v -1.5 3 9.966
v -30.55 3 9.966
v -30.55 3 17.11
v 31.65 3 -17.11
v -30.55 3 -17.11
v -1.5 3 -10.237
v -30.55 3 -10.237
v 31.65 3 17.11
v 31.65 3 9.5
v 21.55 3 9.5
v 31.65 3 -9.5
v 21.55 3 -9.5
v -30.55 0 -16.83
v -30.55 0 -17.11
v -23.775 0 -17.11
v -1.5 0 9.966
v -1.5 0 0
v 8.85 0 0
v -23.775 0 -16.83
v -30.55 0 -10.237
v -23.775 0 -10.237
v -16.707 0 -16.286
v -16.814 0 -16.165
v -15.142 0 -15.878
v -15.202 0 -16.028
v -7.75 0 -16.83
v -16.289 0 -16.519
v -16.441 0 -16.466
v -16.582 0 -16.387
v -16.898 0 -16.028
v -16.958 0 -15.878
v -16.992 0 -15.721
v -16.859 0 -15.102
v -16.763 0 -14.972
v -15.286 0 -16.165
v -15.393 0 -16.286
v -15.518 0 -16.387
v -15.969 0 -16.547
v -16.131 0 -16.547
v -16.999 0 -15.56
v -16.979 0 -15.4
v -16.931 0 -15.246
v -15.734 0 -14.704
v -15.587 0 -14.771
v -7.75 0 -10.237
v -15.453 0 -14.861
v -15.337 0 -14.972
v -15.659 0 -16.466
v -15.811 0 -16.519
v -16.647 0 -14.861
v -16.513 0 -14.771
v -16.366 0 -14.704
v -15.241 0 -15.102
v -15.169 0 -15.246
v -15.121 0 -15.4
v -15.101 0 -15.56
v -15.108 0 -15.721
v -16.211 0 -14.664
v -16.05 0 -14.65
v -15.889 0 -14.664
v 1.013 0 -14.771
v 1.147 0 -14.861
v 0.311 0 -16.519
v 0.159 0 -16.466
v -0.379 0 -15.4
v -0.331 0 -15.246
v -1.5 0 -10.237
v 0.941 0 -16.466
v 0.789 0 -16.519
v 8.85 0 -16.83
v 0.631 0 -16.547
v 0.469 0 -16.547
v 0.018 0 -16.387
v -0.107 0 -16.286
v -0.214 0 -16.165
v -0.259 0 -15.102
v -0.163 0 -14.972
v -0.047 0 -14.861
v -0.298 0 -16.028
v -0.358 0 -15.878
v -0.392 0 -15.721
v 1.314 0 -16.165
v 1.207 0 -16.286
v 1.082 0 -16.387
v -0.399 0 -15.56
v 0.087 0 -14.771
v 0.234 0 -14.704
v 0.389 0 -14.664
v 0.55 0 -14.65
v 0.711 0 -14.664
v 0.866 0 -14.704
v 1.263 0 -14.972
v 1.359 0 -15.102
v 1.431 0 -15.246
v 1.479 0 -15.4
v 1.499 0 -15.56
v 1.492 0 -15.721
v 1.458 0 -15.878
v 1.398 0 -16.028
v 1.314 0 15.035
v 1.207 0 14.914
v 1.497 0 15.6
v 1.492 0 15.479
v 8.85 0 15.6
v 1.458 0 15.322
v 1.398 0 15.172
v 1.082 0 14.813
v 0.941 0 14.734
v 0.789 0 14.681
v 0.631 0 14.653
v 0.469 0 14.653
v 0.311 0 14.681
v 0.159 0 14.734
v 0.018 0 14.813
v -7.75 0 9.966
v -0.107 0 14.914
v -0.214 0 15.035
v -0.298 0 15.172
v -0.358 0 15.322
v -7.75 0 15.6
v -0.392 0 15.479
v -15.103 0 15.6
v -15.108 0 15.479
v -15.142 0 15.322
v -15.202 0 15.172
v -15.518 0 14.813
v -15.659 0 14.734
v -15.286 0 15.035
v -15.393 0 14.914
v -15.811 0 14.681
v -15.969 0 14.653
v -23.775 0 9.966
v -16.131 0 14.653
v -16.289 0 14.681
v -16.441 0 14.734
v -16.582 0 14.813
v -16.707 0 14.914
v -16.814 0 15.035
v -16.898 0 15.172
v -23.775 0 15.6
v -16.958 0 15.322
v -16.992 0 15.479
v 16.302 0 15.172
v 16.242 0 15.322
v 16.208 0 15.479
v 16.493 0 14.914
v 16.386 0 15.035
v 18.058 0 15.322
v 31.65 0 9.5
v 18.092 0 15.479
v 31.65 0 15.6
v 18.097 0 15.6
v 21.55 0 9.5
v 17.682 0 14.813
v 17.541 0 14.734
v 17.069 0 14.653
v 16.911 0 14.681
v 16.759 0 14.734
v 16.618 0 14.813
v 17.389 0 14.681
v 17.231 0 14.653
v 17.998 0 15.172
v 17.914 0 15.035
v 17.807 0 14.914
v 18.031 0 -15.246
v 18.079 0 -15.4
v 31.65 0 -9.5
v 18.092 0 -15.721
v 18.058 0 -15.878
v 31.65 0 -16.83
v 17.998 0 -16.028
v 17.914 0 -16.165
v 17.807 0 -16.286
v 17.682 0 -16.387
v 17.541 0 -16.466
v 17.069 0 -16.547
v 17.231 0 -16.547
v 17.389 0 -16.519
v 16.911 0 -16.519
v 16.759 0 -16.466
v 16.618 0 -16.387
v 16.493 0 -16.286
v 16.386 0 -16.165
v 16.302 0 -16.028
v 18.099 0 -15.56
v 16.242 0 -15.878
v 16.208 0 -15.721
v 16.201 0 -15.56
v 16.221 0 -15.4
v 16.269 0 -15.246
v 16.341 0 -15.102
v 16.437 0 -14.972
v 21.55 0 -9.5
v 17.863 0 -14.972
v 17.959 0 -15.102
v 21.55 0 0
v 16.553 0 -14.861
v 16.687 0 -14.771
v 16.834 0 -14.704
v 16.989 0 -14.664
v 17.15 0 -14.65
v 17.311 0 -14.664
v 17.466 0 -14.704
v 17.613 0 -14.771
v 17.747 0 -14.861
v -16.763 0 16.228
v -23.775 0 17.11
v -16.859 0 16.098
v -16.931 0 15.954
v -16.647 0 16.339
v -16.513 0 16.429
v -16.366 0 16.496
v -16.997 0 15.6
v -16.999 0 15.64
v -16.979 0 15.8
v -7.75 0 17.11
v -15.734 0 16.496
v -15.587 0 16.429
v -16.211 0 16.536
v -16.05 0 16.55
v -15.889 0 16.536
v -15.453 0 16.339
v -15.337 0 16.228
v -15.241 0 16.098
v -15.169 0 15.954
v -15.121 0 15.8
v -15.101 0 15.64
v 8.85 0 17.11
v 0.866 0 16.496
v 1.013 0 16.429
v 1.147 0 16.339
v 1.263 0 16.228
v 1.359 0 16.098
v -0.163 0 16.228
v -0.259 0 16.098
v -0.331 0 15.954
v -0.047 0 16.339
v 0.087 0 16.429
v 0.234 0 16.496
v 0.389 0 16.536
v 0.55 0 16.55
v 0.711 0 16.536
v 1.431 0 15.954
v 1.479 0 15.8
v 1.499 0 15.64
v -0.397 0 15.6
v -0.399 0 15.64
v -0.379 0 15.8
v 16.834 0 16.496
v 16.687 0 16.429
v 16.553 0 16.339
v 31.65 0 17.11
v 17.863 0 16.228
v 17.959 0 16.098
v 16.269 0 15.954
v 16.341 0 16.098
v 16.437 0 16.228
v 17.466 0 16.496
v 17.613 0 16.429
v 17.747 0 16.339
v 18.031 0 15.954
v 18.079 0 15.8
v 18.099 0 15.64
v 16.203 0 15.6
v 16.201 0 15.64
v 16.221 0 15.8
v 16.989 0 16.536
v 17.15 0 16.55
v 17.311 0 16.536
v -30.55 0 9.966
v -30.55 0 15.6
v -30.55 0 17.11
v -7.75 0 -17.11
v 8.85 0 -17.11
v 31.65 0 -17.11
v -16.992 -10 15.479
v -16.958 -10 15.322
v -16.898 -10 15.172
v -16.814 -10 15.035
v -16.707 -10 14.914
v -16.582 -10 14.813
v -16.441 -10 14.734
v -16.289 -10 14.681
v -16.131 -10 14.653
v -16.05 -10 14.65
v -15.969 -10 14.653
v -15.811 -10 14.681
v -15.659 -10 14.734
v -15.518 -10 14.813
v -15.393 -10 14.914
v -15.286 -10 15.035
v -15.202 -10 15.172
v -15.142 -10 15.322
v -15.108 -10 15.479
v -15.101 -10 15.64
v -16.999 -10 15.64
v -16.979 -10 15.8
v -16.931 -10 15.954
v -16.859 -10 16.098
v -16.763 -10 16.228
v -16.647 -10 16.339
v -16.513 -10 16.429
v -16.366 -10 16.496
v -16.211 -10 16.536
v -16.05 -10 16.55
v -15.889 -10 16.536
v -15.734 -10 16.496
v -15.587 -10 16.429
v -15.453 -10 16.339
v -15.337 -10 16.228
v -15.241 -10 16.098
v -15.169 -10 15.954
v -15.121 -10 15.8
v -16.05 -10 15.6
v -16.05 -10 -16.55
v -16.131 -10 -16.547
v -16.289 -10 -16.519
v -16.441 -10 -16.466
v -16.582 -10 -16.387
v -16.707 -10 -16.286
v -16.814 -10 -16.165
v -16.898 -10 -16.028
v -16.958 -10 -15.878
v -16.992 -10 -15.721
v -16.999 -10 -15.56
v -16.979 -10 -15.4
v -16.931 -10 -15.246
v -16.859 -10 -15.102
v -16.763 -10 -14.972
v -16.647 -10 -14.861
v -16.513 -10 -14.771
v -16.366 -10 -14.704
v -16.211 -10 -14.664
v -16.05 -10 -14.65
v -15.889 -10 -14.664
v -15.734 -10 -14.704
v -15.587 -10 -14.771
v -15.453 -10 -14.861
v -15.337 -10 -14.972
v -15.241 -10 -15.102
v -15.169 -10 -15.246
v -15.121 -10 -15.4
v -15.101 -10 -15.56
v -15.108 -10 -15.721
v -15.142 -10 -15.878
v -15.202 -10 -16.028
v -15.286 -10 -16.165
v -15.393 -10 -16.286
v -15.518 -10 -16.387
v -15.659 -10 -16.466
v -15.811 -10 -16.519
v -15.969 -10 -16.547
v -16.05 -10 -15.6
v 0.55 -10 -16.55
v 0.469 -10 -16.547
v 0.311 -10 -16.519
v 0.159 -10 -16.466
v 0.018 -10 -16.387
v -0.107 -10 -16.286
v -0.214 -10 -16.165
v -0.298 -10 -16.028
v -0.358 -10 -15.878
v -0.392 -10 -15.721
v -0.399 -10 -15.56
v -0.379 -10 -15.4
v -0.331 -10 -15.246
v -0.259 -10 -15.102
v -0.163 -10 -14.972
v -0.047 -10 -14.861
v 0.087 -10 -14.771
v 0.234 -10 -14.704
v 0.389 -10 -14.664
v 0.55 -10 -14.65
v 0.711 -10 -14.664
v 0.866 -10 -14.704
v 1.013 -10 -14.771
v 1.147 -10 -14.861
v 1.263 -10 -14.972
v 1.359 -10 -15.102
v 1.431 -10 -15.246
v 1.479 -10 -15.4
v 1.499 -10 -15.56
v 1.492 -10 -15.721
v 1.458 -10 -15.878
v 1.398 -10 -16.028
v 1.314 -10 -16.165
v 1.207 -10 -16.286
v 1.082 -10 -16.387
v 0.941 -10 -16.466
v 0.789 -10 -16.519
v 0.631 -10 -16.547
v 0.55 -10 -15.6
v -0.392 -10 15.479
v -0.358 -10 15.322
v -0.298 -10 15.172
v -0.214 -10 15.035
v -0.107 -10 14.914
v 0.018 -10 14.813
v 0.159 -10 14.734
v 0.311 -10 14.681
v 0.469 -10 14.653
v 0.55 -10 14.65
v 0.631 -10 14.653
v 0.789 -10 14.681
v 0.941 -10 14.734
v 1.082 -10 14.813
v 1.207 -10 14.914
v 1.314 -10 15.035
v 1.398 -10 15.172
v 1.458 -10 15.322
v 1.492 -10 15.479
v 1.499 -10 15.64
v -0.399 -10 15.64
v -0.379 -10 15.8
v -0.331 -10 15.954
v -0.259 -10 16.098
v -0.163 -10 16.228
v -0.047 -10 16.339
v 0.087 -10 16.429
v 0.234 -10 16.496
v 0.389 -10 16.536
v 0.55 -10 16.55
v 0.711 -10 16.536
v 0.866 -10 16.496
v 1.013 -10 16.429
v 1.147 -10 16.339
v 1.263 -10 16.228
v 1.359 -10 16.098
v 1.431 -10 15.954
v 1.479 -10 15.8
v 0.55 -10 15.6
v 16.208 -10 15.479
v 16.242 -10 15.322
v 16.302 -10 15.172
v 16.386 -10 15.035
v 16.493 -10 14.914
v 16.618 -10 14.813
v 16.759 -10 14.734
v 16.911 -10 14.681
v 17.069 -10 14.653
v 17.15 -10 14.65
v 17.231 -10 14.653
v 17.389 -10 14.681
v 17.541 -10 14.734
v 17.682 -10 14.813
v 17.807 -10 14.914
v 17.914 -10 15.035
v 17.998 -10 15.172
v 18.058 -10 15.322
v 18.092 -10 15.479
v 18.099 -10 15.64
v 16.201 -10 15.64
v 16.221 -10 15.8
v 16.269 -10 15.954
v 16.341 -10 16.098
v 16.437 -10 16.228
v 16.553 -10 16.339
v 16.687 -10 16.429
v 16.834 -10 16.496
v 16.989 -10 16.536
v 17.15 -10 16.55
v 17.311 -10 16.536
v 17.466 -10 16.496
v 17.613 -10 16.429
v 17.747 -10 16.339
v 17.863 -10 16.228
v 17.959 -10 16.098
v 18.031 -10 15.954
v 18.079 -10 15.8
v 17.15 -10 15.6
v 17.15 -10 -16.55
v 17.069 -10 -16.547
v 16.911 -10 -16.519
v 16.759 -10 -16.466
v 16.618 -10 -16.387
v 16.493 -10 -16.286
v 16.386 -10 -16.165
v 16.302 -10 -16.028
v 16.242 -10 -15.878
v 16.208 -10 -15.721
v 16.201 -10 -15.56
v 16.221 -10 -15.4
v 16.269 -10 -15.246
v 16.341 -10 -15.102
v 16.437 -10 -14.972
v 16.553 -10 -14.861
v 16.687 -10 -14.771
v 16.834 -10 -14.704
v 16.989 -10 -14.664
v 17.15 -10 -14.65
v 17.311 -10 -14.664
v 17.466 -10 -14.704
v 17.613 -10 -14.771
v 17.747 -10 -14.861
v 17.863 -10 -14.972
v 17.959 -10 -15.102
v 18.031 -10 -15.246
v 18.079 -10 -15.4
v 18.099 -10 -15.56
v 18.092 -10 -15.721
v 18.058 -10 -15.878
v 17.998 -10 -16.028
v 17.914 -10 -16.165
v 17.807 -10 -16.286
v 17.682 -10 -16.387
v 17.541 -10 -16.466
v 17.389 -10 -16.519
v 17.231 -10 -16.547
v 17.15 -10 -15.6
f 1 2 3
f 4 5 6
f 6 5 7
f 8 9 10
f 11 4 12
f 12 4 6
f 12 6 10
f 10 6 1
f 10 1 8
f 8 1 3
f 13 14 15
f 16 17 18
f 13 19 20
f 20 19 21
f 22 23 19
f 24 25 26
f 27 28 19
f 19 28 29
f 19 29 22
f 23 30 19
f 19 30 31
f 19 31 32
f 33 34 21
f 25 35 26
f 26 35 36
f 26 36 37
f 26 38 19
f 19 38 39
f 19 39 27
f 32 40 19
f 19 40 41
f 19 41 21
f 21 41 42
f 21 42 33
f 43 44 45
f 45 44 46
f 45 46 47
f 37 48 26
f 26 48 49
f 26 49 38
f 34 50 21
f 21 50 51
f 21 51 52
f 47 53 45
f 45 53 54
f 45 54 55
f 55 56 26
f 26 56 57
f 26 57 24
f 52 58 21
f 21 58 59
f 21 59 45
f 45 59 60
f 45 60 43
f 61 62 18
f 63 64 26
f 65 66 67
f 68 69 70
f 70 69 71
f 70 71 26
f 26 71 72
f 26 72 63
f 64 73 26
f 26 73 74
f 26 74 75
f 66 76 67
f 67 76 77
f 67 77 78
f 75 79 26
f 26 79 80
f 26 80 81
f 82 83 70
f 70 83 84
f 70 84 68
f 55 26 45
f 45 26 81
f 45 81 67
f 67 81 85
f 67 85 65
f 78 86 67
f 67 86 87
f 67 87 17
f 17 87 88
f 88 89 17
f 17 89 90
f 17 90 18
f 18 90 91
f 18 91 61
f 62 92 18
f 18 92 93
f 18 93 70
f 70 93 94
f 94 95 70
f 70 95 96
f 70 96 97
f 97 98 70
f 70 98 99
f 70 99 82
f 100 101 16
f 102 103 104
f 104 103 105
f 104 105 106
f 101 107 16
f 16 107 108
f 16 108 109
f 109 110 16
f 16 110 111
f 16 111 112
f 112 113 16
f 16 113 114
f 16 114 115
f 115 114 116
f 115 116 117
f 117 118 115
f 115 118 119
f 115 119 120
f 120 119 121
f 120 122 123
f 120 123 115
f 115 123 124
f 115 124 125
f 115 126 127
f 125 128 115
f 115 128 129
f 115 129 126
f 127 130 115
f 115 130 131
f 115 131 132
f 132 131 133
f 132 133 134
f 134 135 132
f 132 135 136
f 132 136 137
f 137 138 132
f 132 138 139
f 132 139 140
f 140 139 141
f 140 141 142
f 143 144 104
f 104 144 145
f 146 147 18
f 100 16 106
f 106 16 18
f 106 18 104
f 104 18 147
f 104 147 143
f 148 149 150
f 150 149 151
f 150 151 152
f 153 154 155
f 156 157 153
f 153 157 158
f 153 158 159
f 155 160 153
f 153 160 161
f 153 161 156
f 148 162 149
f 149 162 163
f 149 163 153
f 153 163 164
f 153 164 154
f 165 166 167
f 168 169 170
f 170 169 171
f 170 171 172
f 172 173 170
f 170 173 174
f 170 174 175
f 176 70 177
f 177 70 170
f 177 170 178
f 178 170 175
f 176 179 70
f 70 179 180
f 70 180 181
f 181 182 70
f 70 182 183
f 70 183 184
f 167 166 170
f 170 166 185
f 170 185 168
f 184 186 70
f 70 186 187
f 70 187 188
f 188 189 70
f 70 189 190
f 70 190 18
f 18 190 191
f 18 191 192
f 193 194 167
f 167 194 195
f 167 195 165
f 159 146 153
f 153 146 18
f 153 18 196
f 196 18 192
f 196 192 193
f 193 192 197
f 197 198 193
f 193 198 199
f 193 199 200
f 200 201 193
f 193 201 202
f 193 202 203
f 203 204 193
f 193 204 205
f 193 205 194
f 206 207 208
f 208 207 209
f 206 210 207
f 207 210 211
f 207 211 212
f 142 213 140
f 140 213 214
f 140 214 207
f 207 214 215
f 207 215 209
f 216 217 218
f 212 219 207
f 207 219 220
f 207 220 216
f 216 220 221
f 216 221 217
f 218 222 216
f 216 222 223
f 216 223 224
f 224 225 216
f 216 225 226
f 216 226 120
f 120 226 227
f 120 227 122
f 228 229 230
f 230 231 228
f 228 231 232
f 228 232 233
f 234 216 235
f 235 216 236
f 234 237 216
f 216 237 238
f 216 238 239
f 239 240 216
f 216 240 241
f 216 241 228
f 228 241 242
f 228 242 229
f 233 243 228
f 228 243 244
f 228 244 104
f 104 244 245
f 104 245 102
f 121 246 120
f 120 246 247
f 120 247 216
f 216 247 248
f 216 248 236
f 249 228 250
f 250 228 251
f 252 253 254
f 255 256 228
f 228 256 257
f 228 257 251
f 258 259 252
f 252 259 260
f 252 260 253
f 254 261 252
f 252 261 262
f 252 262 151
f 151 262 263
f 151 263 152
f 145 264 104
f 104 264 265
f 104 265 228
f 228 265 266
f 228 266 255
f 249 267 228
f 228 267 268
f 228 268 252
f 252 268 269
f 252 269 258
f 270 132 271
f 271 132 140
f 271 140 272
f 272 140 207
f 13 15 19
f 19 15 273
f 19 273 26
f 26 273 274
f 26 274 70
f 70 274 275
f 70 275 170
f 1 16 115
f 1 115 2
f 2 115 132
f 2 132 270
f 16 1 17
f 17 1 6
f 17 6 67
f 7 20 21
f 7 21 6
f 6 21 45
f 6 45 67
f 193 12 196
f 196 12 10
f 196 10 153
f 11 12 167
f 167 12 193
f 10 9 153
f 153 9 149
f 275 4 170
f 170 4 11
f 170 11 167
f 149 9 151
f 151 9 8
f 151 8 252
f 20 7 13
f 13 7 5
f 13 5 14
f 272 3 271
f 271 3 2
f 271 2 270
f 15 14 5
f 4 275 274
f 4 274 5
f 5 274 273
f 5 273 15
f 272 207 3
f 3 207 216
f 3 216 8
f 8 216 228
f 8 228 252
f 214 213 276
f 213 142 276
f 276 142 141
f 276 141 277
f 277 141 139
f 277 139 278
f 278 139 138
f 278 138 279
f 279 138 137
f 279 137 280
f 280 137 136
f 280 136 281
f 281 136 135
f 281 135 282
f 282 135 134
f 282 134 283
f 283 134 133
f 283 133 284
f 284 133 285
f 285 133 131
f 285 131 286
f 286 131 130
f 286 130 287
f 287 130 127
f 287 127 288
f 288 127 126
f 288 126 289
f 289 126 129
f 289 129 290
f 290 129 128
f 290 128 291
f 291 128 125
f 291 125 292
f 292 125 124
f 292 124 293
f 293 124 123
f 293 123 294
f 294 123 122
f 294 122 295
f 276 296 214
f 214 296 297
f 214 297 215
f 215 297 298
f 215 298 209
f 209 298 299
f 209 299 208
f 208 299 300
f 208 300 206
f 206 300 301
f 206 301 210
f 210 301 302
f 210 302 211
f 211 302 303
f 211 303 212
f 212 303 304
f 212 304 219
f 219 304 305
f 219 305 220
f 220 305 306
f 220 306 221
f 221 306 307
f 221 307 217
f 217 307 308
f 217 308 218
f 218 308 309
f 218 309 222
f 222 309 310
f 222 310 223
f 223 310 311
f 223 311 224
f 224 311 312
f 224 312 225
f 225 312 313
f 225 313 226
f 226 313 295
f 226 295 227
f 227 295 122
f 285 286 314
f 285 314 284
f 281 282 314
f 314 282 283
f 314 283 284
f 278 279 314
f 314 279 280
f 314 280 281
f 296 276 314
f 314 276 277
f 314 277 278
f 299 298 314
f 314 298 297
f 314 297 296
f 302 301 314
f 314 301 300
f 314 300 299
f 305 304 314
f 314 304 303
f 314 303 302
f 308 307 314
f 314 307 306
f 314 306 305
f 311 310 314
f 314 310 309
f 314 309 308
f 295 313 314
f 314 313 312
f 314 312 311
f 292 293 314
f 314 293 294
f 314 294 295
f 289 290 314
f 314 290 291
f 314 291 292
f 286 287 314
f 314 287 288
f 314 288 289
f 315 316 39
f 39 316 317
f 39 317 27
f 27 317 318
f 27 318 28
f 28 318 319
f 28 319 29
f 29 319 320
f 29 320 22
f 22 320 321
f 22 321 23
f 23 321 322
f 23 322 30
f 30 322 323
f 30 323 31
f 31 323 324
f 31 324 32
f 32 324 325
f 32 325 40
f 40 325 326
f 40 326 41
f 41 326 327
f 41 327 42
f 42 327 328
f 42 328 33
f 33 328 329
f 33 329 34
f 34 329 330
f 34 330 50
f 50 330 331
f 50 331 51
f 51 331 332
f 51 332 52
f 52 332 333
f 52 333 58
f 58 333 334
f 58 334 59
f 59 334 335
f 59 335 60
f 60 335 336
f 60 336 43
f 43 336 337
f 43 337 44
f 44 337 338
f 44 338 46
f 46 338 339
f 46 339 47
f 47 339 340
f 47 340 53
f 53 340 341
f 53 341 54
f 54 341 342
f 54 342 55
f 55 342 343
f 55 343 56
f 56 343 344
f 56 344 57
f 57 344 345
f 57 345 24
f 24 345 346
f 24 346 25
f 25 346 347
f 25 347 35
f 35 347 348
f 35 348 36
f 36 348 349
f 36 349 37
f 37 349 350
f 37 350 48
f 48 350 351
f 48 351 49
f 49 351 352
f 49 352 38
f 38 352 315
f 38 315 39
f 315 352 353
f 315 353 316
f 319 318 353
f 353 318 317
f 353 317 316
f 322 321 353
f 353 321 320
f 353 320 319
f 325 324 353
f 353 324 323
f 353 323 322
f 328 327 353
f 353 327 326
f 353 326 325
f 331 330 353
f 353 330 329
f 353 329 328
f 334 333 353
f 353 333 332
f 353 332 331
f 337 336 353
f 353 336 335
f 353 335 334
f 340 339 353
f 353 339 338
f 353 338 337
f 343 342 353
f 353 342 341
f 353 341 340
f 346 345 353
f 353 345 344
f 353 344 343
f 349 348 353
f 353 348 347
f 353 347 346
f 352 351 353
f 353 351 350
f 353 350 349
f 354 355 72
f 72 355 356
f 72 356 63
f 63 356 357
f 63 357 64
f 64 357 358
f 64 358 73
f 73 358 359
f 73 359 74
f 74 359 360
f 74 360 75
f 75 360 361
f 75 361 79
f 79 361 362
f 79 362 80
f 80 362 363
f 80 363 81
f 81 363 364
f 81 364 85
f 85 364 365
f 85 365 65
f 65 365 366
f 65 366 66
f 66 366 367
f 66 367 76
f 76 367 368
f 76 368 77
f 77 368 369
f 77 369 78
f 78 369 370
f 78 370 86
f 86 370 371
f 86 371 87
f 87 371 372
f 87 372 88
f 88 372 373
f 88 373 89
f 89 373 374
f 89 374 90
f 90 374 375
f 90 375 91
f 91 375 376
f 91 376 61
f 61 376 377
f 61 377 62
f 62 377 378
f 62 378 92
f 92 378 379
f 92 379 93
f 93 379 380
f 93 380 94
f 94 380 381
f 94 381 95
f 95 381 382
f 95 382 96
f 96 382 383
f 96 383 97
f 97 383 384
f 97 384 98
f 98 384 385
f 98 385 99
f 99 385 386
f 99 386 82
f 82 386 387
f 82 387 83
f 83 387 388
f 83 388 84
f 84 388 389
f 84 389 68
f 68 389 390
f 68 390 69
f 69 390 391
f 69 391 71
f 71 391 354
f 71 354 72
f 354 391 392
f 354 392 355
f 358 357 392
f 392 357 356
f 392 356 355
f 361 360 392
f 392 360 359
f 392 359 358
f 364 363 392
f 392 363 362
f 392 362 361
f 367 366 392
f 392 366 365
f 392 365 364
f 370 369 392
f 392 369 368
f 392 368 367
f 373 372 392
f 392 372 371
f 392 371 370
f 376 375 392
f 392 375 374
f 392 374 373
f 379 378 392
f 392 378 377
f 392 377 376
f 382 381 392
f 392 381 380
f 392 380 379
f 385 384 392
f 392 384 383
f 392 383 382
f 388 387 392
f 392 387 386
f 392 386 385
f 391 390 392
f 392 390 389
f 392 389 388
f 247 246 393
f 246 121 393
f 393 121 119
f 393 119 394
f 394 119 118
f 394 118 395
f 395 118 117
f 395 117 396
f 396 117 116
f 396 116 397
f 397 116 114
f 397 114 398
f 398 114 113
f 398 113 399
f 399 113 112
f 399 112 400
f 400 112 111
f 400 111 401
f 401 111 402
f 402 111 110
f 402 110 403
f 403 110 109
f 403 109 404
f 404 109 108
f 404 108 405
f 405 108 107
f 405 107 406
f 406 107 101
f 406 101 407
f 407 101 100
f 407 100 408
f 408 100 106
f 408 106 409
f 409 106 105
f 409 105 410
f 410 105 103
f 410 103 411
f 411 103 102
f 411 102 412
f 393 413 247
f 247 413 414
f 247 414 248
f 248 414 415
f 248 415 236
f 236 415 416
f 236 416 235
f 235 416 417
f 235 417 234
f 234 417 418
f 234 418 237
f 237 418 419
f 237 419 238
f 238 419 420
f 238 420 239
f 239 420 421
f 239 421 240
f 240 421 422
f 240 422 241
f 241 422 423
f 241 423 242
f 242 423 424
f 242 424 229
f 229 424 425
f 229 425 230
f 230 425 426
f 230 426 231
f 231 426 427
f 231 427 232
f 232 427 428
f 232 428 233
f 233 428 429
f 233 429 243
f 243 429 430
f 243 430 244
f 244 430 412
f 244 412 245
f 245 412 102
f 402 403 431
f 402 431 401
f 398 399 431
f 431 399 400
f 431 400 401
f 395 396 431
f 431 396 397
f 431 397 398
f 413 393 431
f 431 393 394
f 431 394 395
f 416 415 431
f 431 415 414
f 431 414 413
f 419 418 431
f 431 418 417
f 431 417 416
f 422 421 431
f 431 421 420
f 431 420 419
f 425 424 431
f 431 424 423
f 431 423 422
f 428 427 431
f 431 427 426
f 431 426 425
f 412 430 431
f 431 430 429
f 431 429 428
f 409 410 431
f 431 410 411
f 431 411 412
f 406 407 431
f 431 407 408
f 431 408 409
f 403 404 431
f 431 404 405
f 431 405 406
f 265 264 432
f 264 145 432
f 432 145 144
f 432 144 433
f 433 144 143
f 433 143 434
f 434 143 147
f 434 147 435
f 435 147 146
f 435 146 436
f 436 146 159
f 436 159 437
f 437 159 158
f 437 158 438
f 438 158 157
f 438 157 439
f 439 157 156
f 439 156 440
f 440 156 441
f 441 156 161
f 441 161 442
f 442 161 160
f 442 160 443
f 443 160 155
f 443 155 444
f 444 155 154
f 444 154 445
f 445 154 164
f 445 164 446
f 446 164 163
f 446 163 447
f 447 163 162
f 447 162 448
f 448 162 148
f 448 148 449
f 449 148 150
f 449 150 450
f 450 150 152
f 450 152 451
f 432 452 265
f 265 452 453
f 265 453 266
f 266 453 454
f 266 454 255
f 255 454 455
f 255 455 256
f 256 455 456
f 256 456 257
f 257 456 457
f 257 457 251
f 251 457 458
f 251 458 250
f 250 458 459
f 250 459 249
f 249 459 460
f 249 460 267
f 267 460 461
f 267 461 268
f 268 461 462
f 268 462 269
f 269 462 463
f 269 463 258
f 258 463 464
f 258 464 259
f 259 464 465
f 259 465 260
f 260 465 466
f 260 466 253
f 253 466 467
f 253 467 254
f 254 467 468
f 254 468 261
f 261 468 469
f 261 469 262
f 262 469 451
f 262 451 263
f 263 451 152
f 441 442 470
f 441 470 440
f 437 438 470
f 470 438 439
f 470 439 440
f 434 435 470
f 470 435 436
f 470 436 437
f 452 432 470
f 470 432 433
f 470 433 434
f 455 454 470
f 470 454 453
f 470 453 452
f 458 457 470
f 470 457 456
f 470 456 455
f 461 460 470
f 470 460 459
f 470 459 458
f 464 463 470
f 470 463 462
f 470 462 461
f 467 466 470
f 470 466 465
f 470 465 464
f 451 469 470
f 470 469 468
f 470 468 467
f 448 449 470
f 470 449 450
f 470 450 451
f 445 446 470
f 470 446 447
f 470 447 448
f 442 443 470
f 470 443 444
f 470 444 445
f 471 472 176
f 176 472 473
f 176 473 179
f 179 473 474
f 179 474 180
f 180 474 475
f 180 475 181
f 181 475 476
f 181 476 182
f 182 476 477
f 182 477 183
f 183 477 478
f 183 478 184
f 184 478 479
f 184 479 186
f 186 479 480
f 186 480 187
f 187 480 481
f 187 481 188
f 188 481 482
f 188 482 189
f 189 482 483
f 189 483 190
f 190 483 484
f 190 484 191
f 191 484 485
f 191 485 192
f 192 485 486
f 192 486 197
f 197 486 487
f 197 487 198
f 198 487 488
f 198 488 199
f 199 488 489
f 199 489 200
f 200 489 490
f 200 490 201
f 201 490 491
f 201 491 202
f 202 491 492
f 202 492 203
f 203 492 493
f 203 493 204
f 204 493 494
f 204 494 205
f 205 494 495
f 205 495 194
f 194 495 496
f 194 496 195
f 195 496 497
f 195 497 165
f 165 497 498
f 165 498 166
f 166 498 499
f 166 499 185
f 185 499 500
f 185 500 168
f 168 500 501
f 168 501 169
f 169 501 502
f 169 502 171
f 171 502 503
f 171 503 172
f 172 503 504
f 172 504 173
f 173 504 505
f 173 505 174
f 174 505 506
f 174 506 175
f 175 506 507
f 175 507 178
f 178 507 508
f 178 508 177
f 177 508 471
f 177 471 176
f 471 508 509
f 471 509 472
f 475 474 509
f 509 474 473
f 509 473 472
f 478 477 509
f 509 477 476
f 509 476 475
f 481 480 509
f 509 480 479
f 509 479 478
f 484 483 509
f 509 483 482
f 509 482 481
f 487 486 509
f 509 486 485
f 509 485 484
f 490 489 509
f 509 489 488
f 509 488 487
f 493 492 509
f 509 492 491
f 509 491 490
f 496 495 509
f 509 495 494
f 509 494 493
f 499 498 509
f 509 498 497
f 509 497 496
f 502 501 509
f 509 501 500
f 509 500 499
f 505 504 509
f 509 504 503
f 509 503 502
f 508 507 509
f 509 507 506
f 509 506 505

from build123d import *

# Parameters (mm, degrees)
SKETCH1_W           = 55.1
SKETCH1_H           = 27.8
BOSS_EXTRUDE1_DEPTH = 3
SKETCH3_W           = 21.65
SKETCH3_H           = 20.203759547
SKETCH3_W_2         = 17.65
SKETCH3_H_2         = 15.75
CUT_EXTRUDE1_DEPTH  = 32.00342723
SKETCH4_W           = 19.154601746
SKETCH4_H           = 20.203759547
CUT_EXTRUDE2_DEPTH  = 32.00342723
CUT_EXTRUDE3_DEPTH  = 10
SKETCH7_W           = 4.4
SKETCH7_H           = 3
BOSS_EXTRUDE2_DEPTH = 4.1
SKETCH8_W           = 3.662724417
SKETCH8_H           = 3
SKETCH8_W_2         = 3.933516036
BOSS_EXTRUDE3_DEPTH = 3
SKETCH9_W           = 62.2
SKETCH9_H           = 3
BOSS_EXTRUDE4_DEPTH = 3.21
SKETCH10_W          = 62.2
SKETCH10_H          = 3
BOSS_EXTRUDE5_DEPTH = 3.21
SKETCH11_R          = 0.95
BOSS_EXTRUDE6_DEPTH = 10


with BuildPart() as part:
    # Sketch1 → Boss-Extrude1 (new body)
    with BuildSketch(Plane(origin=(0, 0, 0), x_dir=(1, 0, 0), z_dir=(0, 1, 0))):
        Rectangle(SKETCH1_W, SKETCH1_H)
    extrude(amount=BOSS_EXTRUDE1_DEPTH)

    # Sketch3 → Cut-Extrude1 (cut, through all)
    # profile 1 of 2: a face of its own
    with BuildSketch(Plane.XZ):
        with Locations((-12.325, -0.13539581)):
            Rectangle(SKETCH3_W, SKETCH3_H)
        with Locations((-12.325, -0.375)):
            Rectangle(SKETCH3_W_2, SKETCH3_H_2, mode=Mode.SUBTRACT)
    # profile 2 of 2: a face of its own
    with BuildSketch(Plane.XZ):
        with Locations((-12.325, -0.375)):
            Rectangle(SKETCH3_W_2, SKETCH3_H_2)
    extrude(amount=-CUT_EXTRUDE1_DEPTH, mode=Mode.SUBTRACT)

    # Sketch4 → Cut-Extrude2 (cut, through all)
    with BuildSketch(Plane(origin=(0, 3, 0), x_dir=(1, 0, 0), z_dir=(0, 1, 0))):
        with Locations((-32.727300873, 0.13539581)):
            Rectangle(SKETCH4_W, SKETCH4_H)
    extrude(amount=-CUT_EXTRUDE2_DEPTH, mode=Mode.SUBTRACT)

    # Sketch5 → Cut-Extrude3 (cut)
    with BuildSketch(Plane(origin=(0, 3, 0), x_dir=(1, 0, 0), z_dir=(0, 1, 0))):
        Polygon((27.55, -9.5), (27.55, 0), (27.55, 9.5), (21.55, 9.5), (21.55, -9.5), align=None)
    extrude(amount=-CUT_EXTRUDE3_DEPTH, mode=Mode.SUBTRACT)

    # Sketch7 → Boss-Extrude2 (add)
    with BuildSketch(Plane(origin=(27.55, 0, 0), x_dir=(0, 0, -1), z_dir=(1, 0, 0))):
        with Locations((11.7, 1.5)):
            Rectangle(SKETCH7_W, SKETCH7_H)
        with Locations((-11.7, 1.5)):
            Rectangle(SKETCH7_W, SKETCH7_H)
    extrude(amount=BOSS_EXTRUDE2_DEPTH)

    # Sketch8 → Boss-Extrude3 (add)
    with BuildSketch(Plane.ZY.offset(27.55)):
        with Locations((-12.068637792, 1.5)):
            Rectangle(SKETCH8_W, SKETCH8_H)
        with Locations((11.933241982, 1.5)):
            Rectangle(SKETCH8_W_2, SKETCH8_H)
    extrude(amount=BOSS_EXTRUDE3_DEPTH)

    # Sketch9 → Boss-Extrude4 (add)
    with BuildSketch(Plane(origin=(0, 0, -13.9), x_dir=(-1, 0, 0), z_dir=(0, 0, -1))):
        with Locations((-0.55, 1.5)):
            Rectangle(SKETCH9_W, SKETCH9_H)
    extrude(amount=BOSS_EXTRUDE4_DEPTH)

    # Sketch10 → Boss-Extrude5 (add)
    with BuildSketch(Plane.XY.offset(13.9)):
        with Locations((0.55, 1.5)):
            Rectangle(SKETCH10_W, SKETCH10_H)
    extrude(amount=BOSS_EXTRUDE5_DEPTH)

    # Sketch11 → Boss-Extrude6 (add)
    with BuildSketch(Plane.XZ):
        with Locations(Location((-16.05, 15.6, 0), (0, 0, 90))):
            Circle(SKETCH11_R)
        with Locations(Location((-16.05, -15.6, 0), (0, 0, 90))):
            Circle(SKETCH11_R)
        with Locations(Location((0.55, -15.6, 0), (0, 0, 90))):
            Circle(SKETCH11_R)
        with Locations(Location((0.55, 15.6, 0), (0, 0, 90))):
            Circle(SKETCH11_R)
        with Locations(Location((17.15, 15.6, 0), (0, 0, 90))):
            Circle(SKETCH11_R)
        with Locations(Location((17.15, -15.6, 0), (0, 0, 90))):
            Circle(SKETCH11_R)
    extrude(amount=BOSS_EXTRUDE6_DEPTH)


solid = part.part
